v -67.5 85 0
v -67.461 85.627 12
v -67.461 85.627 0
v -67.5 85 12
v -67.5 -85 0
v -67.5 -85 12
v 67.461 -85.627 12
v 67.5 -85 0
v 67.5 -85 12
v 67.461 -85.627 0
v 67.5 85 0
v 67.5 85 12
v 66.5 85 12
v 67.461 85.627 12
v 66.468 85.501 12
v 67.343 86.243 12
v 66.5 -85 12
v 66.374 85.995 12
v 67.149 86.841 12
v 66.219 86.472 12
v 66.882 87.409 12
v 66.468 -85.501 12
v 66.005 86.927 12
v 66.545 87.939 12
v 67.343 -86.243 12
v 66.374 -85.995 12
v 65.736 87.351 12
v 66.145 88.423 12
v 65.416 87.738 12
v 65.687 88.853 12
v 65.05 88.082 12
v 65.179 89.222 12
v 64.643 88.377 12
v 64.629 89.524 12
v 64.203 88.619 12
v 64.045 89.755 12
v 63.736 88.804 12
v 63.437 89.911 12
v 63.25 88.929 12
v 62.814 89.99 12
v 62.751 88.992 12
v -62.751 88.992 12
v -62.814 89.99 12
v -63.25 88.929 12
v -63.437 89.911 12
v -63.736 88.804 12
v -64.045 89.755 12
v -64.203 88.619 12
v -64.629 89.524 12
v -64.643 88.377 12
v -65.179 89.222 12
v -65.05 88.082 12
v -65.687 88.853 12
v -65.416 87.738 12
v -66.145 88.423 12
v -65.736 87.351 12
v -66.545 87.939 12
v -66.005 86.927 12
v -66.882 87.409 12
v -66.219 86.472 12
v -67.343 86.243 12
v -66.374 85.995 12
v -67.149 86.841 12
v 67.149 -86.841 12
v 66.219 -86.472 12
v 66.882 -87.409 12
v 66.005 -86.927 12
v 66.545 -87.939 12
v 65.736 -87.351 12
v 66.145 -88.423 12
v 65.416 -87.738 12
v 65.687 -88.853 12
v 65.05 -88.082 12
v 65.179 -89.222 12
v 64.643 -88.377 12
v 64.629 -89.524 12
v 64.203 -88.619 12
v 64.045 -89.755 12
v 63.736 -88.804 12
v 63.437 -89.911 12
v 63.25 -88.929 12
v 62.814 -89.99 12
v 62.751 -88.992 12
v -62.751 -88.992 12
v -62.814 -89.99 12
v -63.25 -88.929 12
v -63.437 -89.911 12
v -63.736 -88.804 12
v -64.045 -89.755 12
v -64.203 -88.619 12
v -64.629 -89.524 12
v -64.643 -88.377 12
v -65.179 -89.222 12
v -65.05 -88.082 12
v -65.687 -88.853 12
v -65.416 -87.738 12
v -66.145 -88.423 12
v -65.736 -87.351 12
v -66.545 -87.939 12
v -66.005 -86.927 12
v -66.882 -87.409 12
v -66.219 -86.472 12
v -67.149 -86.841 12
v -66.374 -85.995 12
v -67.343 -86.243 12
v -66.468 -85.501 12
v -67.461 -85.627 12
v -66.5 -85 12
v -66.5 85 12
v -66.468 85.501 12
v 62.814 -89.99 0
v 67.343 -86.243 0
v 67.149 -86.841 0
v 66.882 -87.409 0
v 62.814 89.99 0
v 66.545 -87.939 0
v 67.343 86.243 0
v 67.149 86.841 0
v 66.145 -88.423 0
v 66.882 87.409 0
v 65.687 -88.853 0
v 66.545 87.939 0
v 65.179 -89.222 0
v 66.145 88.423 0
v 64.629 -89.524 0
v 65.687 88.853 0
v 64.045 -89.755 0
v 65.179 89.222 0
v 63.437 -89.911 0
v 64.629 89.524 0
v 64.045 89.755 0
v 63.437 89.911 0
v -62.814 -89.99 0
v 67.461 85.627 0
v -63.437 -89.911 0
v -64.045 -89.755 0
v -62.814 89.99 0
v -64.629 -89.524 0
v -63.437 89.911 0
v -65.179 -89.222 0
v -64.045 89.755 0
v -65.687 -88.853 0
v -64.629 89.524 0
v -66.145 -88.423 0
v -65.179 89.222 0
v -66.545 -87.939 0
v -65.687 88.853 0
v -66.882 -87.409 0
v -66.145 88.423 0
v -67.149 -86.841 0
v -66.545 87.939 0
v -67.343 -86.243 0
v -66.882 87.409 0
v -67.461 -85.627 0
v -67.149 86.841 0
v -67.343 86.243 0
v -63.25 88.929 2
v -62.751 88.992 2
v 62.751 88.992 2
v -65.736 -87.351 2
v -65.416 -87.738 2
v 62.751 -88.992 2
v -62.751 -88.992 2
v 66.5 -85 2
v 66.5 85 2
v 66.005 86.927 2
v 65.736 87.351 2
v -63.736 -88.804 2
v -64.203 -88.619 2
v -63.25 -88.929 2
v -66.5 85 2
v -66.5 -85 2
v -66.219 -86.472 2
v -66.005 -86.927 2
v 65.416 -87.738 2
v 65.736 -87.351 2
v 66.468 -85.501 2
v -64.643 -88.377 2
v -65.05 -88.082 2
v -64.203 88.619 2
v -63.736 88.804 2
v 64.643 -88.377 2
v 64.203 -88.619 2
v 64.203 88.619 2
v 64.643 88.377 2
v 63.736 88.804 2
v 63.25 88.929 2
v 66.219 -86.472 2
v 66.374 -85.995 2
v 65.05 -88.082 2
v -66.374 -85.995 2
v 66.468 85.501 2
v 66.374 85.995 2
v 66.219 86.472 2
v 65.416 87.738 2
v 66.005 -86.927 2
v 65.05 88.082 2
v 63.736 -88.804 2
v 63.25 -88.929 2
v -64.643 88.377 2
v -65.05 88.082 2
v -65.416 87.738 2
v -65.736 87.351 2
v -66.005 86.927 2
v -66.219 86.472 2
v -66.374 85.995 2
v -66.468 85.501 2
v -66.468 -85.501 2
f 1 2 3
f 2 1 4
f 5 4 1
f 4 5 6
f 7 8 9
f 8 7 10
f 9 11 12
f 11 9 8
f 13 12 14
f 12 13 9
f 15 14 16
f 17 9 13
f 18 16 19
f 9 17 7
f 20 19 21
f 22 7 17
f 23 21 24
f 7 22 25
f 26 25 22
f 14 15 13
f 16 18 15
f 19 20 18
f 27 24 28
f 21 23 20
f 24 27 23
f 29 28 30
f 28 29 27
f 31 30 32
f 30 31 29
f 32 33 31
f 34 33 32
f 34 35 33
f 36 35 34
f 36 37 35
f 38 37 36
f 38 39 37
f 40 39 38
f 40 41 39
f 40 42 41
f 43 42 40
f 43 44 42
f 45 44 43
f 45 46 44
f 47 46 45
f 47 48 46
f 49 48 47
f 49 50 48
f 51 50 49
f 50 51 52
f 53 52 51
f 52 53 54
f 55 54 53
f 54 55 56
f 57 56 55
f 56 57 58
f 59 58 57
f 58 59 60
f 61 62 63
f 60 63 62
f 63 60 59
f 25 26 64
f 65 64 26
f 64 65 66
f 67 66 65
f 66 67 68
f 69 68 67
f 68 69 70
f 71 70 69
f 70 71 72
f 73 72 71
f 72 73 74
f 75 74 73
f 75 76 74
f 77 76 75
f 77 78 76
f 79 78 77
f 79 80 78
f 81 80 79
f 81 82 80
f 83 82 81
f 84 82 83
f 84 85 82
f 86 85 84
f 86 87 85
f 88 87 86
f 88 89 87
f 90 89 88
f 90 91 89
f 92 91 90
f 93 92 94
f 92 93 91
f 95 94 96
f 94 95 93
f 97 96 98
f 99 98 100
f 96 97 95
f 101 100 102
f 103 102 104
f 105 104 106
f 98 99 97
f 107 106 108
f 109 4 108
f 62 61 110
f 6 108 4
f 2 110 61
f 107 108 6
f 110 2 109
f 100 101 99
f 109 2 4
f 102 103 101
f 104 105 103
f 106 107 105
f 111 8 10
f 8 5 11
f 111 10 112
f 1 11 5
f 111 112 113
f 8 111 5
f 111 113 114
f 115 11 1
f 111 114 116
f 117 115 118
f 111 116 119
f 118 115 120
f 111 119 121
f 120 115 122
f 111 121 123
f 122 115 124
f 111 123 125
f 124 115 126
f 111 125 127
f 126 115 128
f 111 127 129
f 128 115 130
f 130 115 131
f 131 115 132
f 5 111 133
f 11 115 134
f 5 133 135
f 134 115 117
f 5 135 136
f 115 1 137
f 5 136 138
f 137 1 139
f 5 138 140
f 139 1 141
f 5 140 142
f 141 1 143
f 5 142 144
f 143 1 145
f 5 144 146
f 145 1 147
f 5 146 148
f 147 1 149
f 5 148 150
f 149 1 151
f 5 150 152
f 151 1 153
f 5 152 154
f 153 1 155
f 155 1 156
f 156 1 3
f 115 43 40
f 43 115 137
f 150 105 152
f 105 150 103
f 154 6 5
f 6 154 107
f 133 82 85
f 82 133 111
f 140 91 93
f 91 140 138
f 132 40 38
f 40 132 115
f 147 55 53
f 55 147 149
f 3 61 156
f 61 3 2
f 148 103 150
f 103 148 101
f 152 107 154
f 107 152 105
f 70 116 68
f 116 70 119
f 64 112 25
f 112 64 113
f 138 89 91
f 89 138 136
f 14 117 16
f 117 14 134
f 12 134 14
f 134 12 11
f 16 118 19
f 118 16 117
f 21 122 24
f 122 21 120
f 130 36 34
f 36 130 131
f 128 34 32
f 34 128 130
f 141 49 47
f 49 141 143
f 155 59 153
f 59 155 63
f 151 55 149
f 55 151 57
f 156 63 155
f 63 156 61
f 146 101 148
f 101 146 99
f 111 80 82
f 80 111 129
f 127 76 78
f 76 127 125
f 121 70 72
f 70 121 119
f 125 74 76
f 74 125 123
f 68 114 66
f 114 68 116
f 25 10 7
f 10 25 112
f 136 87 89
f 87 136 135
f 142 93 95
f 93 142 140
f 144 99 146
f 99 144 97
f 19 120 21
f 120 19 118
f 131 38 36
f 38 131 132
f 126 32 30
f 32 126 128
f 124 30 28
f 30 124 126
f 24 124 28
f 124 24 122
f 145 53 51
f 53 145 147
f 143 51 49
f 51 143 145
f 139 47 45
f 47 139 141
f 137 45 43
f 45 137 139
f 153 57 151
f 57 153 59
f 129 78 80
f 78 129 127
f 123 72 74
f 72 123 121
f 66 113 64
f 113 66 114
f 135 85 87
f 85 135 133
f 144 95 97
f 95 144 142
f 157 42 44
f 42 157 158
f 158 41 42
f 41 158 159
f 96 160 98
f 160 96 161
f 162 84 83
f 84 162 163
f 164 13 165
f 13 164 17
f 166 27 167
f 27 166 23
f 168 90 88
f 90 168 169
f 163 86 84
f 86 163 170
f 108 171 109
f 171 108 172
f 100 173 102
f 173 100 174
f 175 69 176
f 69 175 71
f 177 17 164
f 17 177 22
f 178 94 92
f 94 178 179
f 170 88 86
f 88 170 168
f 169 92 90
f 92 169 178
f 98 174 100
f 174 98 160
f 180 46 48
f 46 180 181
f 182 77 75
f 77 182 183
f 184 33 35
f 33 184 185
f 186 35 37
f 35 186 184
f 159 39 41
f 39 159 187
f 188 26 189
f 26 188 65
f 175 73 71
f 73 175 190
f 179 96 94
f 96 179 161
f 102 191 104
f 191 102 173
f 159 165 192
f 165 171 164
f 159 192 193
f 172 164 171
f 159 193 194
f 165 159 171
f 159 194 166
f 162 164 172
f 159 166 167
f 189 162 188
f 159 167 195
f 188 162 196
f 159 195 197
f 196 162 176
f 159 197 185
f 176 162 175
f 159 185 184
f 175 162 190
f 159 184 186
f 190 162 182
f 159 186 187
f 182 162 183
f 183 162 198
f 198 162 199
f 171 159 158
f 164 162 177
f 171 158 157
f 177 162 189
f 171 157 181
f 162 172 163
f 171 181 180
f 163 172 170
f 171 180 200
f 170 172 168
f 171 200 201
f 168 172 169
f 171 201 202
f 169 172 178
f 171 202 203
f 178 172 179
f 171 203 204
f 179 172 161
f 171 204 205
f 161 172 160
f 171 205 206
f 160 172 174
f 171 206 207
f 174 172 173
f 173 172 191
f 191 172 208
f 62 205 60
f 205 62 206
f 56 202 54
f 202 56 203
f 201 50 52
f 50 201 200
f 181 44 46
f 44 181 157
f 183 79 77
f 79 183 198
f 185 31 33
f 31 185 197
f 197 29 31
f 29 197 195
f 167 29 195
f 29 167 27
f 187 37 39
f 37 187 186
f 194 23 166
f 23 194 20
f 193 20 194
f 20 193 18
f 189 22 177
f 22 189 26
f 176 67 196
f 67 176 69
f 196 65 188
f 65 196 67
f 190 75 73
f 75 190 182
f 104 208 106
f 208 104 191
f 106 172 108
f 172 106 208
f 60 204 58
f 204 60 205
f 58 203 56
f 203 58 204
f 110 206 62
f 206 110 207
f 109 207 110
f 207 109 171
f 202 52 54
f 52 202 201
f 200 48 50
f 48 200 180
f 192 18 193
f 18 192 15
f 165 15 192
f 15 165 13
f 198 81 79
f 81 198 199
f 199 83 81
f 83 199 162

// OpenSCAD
$fn = 50;


difference() {
	union() {
		hull() {
			translate(v = [-62.5000000000, 85.0000000000, 0]) {
				cylinder(h = 12, r = 5);
			}
			translate(v = [62.5000000000, 85.0000000000, 0]) {
				cylinder(h = 12, r = 5);
			}
			translate(v = [-62.5000000000, -85.0000000000, 0]) {
				cylinder(h = 12, r = 5);
			}
			translate(v = [62.5000000000, -85.0000000000, 0]) {
				cylinder(h = 12, r = 5);
			}
		}
	}
	union() {
		translate(v = [0, 0, 2]) {
			hull() {
				translate(v = [-62.5000000000, 85.0000000000, 0]) {
					cylinder(h = 10, r = 4);
				}
				translate(v = [62.5000000000, 85.0000000000, 0]) {
					cylinder(h = 10, r = 4);
				}
				translate(v = [-62.5000000000, -85.0000000000, 0]) {
					cylinder(h = 10, r = 4);
				}
				translate(v = [62.5000000000, -85.0000000000, 0]) {
					cylinder(h = 10, r = 4);
				}
			}
		}
	}
}
